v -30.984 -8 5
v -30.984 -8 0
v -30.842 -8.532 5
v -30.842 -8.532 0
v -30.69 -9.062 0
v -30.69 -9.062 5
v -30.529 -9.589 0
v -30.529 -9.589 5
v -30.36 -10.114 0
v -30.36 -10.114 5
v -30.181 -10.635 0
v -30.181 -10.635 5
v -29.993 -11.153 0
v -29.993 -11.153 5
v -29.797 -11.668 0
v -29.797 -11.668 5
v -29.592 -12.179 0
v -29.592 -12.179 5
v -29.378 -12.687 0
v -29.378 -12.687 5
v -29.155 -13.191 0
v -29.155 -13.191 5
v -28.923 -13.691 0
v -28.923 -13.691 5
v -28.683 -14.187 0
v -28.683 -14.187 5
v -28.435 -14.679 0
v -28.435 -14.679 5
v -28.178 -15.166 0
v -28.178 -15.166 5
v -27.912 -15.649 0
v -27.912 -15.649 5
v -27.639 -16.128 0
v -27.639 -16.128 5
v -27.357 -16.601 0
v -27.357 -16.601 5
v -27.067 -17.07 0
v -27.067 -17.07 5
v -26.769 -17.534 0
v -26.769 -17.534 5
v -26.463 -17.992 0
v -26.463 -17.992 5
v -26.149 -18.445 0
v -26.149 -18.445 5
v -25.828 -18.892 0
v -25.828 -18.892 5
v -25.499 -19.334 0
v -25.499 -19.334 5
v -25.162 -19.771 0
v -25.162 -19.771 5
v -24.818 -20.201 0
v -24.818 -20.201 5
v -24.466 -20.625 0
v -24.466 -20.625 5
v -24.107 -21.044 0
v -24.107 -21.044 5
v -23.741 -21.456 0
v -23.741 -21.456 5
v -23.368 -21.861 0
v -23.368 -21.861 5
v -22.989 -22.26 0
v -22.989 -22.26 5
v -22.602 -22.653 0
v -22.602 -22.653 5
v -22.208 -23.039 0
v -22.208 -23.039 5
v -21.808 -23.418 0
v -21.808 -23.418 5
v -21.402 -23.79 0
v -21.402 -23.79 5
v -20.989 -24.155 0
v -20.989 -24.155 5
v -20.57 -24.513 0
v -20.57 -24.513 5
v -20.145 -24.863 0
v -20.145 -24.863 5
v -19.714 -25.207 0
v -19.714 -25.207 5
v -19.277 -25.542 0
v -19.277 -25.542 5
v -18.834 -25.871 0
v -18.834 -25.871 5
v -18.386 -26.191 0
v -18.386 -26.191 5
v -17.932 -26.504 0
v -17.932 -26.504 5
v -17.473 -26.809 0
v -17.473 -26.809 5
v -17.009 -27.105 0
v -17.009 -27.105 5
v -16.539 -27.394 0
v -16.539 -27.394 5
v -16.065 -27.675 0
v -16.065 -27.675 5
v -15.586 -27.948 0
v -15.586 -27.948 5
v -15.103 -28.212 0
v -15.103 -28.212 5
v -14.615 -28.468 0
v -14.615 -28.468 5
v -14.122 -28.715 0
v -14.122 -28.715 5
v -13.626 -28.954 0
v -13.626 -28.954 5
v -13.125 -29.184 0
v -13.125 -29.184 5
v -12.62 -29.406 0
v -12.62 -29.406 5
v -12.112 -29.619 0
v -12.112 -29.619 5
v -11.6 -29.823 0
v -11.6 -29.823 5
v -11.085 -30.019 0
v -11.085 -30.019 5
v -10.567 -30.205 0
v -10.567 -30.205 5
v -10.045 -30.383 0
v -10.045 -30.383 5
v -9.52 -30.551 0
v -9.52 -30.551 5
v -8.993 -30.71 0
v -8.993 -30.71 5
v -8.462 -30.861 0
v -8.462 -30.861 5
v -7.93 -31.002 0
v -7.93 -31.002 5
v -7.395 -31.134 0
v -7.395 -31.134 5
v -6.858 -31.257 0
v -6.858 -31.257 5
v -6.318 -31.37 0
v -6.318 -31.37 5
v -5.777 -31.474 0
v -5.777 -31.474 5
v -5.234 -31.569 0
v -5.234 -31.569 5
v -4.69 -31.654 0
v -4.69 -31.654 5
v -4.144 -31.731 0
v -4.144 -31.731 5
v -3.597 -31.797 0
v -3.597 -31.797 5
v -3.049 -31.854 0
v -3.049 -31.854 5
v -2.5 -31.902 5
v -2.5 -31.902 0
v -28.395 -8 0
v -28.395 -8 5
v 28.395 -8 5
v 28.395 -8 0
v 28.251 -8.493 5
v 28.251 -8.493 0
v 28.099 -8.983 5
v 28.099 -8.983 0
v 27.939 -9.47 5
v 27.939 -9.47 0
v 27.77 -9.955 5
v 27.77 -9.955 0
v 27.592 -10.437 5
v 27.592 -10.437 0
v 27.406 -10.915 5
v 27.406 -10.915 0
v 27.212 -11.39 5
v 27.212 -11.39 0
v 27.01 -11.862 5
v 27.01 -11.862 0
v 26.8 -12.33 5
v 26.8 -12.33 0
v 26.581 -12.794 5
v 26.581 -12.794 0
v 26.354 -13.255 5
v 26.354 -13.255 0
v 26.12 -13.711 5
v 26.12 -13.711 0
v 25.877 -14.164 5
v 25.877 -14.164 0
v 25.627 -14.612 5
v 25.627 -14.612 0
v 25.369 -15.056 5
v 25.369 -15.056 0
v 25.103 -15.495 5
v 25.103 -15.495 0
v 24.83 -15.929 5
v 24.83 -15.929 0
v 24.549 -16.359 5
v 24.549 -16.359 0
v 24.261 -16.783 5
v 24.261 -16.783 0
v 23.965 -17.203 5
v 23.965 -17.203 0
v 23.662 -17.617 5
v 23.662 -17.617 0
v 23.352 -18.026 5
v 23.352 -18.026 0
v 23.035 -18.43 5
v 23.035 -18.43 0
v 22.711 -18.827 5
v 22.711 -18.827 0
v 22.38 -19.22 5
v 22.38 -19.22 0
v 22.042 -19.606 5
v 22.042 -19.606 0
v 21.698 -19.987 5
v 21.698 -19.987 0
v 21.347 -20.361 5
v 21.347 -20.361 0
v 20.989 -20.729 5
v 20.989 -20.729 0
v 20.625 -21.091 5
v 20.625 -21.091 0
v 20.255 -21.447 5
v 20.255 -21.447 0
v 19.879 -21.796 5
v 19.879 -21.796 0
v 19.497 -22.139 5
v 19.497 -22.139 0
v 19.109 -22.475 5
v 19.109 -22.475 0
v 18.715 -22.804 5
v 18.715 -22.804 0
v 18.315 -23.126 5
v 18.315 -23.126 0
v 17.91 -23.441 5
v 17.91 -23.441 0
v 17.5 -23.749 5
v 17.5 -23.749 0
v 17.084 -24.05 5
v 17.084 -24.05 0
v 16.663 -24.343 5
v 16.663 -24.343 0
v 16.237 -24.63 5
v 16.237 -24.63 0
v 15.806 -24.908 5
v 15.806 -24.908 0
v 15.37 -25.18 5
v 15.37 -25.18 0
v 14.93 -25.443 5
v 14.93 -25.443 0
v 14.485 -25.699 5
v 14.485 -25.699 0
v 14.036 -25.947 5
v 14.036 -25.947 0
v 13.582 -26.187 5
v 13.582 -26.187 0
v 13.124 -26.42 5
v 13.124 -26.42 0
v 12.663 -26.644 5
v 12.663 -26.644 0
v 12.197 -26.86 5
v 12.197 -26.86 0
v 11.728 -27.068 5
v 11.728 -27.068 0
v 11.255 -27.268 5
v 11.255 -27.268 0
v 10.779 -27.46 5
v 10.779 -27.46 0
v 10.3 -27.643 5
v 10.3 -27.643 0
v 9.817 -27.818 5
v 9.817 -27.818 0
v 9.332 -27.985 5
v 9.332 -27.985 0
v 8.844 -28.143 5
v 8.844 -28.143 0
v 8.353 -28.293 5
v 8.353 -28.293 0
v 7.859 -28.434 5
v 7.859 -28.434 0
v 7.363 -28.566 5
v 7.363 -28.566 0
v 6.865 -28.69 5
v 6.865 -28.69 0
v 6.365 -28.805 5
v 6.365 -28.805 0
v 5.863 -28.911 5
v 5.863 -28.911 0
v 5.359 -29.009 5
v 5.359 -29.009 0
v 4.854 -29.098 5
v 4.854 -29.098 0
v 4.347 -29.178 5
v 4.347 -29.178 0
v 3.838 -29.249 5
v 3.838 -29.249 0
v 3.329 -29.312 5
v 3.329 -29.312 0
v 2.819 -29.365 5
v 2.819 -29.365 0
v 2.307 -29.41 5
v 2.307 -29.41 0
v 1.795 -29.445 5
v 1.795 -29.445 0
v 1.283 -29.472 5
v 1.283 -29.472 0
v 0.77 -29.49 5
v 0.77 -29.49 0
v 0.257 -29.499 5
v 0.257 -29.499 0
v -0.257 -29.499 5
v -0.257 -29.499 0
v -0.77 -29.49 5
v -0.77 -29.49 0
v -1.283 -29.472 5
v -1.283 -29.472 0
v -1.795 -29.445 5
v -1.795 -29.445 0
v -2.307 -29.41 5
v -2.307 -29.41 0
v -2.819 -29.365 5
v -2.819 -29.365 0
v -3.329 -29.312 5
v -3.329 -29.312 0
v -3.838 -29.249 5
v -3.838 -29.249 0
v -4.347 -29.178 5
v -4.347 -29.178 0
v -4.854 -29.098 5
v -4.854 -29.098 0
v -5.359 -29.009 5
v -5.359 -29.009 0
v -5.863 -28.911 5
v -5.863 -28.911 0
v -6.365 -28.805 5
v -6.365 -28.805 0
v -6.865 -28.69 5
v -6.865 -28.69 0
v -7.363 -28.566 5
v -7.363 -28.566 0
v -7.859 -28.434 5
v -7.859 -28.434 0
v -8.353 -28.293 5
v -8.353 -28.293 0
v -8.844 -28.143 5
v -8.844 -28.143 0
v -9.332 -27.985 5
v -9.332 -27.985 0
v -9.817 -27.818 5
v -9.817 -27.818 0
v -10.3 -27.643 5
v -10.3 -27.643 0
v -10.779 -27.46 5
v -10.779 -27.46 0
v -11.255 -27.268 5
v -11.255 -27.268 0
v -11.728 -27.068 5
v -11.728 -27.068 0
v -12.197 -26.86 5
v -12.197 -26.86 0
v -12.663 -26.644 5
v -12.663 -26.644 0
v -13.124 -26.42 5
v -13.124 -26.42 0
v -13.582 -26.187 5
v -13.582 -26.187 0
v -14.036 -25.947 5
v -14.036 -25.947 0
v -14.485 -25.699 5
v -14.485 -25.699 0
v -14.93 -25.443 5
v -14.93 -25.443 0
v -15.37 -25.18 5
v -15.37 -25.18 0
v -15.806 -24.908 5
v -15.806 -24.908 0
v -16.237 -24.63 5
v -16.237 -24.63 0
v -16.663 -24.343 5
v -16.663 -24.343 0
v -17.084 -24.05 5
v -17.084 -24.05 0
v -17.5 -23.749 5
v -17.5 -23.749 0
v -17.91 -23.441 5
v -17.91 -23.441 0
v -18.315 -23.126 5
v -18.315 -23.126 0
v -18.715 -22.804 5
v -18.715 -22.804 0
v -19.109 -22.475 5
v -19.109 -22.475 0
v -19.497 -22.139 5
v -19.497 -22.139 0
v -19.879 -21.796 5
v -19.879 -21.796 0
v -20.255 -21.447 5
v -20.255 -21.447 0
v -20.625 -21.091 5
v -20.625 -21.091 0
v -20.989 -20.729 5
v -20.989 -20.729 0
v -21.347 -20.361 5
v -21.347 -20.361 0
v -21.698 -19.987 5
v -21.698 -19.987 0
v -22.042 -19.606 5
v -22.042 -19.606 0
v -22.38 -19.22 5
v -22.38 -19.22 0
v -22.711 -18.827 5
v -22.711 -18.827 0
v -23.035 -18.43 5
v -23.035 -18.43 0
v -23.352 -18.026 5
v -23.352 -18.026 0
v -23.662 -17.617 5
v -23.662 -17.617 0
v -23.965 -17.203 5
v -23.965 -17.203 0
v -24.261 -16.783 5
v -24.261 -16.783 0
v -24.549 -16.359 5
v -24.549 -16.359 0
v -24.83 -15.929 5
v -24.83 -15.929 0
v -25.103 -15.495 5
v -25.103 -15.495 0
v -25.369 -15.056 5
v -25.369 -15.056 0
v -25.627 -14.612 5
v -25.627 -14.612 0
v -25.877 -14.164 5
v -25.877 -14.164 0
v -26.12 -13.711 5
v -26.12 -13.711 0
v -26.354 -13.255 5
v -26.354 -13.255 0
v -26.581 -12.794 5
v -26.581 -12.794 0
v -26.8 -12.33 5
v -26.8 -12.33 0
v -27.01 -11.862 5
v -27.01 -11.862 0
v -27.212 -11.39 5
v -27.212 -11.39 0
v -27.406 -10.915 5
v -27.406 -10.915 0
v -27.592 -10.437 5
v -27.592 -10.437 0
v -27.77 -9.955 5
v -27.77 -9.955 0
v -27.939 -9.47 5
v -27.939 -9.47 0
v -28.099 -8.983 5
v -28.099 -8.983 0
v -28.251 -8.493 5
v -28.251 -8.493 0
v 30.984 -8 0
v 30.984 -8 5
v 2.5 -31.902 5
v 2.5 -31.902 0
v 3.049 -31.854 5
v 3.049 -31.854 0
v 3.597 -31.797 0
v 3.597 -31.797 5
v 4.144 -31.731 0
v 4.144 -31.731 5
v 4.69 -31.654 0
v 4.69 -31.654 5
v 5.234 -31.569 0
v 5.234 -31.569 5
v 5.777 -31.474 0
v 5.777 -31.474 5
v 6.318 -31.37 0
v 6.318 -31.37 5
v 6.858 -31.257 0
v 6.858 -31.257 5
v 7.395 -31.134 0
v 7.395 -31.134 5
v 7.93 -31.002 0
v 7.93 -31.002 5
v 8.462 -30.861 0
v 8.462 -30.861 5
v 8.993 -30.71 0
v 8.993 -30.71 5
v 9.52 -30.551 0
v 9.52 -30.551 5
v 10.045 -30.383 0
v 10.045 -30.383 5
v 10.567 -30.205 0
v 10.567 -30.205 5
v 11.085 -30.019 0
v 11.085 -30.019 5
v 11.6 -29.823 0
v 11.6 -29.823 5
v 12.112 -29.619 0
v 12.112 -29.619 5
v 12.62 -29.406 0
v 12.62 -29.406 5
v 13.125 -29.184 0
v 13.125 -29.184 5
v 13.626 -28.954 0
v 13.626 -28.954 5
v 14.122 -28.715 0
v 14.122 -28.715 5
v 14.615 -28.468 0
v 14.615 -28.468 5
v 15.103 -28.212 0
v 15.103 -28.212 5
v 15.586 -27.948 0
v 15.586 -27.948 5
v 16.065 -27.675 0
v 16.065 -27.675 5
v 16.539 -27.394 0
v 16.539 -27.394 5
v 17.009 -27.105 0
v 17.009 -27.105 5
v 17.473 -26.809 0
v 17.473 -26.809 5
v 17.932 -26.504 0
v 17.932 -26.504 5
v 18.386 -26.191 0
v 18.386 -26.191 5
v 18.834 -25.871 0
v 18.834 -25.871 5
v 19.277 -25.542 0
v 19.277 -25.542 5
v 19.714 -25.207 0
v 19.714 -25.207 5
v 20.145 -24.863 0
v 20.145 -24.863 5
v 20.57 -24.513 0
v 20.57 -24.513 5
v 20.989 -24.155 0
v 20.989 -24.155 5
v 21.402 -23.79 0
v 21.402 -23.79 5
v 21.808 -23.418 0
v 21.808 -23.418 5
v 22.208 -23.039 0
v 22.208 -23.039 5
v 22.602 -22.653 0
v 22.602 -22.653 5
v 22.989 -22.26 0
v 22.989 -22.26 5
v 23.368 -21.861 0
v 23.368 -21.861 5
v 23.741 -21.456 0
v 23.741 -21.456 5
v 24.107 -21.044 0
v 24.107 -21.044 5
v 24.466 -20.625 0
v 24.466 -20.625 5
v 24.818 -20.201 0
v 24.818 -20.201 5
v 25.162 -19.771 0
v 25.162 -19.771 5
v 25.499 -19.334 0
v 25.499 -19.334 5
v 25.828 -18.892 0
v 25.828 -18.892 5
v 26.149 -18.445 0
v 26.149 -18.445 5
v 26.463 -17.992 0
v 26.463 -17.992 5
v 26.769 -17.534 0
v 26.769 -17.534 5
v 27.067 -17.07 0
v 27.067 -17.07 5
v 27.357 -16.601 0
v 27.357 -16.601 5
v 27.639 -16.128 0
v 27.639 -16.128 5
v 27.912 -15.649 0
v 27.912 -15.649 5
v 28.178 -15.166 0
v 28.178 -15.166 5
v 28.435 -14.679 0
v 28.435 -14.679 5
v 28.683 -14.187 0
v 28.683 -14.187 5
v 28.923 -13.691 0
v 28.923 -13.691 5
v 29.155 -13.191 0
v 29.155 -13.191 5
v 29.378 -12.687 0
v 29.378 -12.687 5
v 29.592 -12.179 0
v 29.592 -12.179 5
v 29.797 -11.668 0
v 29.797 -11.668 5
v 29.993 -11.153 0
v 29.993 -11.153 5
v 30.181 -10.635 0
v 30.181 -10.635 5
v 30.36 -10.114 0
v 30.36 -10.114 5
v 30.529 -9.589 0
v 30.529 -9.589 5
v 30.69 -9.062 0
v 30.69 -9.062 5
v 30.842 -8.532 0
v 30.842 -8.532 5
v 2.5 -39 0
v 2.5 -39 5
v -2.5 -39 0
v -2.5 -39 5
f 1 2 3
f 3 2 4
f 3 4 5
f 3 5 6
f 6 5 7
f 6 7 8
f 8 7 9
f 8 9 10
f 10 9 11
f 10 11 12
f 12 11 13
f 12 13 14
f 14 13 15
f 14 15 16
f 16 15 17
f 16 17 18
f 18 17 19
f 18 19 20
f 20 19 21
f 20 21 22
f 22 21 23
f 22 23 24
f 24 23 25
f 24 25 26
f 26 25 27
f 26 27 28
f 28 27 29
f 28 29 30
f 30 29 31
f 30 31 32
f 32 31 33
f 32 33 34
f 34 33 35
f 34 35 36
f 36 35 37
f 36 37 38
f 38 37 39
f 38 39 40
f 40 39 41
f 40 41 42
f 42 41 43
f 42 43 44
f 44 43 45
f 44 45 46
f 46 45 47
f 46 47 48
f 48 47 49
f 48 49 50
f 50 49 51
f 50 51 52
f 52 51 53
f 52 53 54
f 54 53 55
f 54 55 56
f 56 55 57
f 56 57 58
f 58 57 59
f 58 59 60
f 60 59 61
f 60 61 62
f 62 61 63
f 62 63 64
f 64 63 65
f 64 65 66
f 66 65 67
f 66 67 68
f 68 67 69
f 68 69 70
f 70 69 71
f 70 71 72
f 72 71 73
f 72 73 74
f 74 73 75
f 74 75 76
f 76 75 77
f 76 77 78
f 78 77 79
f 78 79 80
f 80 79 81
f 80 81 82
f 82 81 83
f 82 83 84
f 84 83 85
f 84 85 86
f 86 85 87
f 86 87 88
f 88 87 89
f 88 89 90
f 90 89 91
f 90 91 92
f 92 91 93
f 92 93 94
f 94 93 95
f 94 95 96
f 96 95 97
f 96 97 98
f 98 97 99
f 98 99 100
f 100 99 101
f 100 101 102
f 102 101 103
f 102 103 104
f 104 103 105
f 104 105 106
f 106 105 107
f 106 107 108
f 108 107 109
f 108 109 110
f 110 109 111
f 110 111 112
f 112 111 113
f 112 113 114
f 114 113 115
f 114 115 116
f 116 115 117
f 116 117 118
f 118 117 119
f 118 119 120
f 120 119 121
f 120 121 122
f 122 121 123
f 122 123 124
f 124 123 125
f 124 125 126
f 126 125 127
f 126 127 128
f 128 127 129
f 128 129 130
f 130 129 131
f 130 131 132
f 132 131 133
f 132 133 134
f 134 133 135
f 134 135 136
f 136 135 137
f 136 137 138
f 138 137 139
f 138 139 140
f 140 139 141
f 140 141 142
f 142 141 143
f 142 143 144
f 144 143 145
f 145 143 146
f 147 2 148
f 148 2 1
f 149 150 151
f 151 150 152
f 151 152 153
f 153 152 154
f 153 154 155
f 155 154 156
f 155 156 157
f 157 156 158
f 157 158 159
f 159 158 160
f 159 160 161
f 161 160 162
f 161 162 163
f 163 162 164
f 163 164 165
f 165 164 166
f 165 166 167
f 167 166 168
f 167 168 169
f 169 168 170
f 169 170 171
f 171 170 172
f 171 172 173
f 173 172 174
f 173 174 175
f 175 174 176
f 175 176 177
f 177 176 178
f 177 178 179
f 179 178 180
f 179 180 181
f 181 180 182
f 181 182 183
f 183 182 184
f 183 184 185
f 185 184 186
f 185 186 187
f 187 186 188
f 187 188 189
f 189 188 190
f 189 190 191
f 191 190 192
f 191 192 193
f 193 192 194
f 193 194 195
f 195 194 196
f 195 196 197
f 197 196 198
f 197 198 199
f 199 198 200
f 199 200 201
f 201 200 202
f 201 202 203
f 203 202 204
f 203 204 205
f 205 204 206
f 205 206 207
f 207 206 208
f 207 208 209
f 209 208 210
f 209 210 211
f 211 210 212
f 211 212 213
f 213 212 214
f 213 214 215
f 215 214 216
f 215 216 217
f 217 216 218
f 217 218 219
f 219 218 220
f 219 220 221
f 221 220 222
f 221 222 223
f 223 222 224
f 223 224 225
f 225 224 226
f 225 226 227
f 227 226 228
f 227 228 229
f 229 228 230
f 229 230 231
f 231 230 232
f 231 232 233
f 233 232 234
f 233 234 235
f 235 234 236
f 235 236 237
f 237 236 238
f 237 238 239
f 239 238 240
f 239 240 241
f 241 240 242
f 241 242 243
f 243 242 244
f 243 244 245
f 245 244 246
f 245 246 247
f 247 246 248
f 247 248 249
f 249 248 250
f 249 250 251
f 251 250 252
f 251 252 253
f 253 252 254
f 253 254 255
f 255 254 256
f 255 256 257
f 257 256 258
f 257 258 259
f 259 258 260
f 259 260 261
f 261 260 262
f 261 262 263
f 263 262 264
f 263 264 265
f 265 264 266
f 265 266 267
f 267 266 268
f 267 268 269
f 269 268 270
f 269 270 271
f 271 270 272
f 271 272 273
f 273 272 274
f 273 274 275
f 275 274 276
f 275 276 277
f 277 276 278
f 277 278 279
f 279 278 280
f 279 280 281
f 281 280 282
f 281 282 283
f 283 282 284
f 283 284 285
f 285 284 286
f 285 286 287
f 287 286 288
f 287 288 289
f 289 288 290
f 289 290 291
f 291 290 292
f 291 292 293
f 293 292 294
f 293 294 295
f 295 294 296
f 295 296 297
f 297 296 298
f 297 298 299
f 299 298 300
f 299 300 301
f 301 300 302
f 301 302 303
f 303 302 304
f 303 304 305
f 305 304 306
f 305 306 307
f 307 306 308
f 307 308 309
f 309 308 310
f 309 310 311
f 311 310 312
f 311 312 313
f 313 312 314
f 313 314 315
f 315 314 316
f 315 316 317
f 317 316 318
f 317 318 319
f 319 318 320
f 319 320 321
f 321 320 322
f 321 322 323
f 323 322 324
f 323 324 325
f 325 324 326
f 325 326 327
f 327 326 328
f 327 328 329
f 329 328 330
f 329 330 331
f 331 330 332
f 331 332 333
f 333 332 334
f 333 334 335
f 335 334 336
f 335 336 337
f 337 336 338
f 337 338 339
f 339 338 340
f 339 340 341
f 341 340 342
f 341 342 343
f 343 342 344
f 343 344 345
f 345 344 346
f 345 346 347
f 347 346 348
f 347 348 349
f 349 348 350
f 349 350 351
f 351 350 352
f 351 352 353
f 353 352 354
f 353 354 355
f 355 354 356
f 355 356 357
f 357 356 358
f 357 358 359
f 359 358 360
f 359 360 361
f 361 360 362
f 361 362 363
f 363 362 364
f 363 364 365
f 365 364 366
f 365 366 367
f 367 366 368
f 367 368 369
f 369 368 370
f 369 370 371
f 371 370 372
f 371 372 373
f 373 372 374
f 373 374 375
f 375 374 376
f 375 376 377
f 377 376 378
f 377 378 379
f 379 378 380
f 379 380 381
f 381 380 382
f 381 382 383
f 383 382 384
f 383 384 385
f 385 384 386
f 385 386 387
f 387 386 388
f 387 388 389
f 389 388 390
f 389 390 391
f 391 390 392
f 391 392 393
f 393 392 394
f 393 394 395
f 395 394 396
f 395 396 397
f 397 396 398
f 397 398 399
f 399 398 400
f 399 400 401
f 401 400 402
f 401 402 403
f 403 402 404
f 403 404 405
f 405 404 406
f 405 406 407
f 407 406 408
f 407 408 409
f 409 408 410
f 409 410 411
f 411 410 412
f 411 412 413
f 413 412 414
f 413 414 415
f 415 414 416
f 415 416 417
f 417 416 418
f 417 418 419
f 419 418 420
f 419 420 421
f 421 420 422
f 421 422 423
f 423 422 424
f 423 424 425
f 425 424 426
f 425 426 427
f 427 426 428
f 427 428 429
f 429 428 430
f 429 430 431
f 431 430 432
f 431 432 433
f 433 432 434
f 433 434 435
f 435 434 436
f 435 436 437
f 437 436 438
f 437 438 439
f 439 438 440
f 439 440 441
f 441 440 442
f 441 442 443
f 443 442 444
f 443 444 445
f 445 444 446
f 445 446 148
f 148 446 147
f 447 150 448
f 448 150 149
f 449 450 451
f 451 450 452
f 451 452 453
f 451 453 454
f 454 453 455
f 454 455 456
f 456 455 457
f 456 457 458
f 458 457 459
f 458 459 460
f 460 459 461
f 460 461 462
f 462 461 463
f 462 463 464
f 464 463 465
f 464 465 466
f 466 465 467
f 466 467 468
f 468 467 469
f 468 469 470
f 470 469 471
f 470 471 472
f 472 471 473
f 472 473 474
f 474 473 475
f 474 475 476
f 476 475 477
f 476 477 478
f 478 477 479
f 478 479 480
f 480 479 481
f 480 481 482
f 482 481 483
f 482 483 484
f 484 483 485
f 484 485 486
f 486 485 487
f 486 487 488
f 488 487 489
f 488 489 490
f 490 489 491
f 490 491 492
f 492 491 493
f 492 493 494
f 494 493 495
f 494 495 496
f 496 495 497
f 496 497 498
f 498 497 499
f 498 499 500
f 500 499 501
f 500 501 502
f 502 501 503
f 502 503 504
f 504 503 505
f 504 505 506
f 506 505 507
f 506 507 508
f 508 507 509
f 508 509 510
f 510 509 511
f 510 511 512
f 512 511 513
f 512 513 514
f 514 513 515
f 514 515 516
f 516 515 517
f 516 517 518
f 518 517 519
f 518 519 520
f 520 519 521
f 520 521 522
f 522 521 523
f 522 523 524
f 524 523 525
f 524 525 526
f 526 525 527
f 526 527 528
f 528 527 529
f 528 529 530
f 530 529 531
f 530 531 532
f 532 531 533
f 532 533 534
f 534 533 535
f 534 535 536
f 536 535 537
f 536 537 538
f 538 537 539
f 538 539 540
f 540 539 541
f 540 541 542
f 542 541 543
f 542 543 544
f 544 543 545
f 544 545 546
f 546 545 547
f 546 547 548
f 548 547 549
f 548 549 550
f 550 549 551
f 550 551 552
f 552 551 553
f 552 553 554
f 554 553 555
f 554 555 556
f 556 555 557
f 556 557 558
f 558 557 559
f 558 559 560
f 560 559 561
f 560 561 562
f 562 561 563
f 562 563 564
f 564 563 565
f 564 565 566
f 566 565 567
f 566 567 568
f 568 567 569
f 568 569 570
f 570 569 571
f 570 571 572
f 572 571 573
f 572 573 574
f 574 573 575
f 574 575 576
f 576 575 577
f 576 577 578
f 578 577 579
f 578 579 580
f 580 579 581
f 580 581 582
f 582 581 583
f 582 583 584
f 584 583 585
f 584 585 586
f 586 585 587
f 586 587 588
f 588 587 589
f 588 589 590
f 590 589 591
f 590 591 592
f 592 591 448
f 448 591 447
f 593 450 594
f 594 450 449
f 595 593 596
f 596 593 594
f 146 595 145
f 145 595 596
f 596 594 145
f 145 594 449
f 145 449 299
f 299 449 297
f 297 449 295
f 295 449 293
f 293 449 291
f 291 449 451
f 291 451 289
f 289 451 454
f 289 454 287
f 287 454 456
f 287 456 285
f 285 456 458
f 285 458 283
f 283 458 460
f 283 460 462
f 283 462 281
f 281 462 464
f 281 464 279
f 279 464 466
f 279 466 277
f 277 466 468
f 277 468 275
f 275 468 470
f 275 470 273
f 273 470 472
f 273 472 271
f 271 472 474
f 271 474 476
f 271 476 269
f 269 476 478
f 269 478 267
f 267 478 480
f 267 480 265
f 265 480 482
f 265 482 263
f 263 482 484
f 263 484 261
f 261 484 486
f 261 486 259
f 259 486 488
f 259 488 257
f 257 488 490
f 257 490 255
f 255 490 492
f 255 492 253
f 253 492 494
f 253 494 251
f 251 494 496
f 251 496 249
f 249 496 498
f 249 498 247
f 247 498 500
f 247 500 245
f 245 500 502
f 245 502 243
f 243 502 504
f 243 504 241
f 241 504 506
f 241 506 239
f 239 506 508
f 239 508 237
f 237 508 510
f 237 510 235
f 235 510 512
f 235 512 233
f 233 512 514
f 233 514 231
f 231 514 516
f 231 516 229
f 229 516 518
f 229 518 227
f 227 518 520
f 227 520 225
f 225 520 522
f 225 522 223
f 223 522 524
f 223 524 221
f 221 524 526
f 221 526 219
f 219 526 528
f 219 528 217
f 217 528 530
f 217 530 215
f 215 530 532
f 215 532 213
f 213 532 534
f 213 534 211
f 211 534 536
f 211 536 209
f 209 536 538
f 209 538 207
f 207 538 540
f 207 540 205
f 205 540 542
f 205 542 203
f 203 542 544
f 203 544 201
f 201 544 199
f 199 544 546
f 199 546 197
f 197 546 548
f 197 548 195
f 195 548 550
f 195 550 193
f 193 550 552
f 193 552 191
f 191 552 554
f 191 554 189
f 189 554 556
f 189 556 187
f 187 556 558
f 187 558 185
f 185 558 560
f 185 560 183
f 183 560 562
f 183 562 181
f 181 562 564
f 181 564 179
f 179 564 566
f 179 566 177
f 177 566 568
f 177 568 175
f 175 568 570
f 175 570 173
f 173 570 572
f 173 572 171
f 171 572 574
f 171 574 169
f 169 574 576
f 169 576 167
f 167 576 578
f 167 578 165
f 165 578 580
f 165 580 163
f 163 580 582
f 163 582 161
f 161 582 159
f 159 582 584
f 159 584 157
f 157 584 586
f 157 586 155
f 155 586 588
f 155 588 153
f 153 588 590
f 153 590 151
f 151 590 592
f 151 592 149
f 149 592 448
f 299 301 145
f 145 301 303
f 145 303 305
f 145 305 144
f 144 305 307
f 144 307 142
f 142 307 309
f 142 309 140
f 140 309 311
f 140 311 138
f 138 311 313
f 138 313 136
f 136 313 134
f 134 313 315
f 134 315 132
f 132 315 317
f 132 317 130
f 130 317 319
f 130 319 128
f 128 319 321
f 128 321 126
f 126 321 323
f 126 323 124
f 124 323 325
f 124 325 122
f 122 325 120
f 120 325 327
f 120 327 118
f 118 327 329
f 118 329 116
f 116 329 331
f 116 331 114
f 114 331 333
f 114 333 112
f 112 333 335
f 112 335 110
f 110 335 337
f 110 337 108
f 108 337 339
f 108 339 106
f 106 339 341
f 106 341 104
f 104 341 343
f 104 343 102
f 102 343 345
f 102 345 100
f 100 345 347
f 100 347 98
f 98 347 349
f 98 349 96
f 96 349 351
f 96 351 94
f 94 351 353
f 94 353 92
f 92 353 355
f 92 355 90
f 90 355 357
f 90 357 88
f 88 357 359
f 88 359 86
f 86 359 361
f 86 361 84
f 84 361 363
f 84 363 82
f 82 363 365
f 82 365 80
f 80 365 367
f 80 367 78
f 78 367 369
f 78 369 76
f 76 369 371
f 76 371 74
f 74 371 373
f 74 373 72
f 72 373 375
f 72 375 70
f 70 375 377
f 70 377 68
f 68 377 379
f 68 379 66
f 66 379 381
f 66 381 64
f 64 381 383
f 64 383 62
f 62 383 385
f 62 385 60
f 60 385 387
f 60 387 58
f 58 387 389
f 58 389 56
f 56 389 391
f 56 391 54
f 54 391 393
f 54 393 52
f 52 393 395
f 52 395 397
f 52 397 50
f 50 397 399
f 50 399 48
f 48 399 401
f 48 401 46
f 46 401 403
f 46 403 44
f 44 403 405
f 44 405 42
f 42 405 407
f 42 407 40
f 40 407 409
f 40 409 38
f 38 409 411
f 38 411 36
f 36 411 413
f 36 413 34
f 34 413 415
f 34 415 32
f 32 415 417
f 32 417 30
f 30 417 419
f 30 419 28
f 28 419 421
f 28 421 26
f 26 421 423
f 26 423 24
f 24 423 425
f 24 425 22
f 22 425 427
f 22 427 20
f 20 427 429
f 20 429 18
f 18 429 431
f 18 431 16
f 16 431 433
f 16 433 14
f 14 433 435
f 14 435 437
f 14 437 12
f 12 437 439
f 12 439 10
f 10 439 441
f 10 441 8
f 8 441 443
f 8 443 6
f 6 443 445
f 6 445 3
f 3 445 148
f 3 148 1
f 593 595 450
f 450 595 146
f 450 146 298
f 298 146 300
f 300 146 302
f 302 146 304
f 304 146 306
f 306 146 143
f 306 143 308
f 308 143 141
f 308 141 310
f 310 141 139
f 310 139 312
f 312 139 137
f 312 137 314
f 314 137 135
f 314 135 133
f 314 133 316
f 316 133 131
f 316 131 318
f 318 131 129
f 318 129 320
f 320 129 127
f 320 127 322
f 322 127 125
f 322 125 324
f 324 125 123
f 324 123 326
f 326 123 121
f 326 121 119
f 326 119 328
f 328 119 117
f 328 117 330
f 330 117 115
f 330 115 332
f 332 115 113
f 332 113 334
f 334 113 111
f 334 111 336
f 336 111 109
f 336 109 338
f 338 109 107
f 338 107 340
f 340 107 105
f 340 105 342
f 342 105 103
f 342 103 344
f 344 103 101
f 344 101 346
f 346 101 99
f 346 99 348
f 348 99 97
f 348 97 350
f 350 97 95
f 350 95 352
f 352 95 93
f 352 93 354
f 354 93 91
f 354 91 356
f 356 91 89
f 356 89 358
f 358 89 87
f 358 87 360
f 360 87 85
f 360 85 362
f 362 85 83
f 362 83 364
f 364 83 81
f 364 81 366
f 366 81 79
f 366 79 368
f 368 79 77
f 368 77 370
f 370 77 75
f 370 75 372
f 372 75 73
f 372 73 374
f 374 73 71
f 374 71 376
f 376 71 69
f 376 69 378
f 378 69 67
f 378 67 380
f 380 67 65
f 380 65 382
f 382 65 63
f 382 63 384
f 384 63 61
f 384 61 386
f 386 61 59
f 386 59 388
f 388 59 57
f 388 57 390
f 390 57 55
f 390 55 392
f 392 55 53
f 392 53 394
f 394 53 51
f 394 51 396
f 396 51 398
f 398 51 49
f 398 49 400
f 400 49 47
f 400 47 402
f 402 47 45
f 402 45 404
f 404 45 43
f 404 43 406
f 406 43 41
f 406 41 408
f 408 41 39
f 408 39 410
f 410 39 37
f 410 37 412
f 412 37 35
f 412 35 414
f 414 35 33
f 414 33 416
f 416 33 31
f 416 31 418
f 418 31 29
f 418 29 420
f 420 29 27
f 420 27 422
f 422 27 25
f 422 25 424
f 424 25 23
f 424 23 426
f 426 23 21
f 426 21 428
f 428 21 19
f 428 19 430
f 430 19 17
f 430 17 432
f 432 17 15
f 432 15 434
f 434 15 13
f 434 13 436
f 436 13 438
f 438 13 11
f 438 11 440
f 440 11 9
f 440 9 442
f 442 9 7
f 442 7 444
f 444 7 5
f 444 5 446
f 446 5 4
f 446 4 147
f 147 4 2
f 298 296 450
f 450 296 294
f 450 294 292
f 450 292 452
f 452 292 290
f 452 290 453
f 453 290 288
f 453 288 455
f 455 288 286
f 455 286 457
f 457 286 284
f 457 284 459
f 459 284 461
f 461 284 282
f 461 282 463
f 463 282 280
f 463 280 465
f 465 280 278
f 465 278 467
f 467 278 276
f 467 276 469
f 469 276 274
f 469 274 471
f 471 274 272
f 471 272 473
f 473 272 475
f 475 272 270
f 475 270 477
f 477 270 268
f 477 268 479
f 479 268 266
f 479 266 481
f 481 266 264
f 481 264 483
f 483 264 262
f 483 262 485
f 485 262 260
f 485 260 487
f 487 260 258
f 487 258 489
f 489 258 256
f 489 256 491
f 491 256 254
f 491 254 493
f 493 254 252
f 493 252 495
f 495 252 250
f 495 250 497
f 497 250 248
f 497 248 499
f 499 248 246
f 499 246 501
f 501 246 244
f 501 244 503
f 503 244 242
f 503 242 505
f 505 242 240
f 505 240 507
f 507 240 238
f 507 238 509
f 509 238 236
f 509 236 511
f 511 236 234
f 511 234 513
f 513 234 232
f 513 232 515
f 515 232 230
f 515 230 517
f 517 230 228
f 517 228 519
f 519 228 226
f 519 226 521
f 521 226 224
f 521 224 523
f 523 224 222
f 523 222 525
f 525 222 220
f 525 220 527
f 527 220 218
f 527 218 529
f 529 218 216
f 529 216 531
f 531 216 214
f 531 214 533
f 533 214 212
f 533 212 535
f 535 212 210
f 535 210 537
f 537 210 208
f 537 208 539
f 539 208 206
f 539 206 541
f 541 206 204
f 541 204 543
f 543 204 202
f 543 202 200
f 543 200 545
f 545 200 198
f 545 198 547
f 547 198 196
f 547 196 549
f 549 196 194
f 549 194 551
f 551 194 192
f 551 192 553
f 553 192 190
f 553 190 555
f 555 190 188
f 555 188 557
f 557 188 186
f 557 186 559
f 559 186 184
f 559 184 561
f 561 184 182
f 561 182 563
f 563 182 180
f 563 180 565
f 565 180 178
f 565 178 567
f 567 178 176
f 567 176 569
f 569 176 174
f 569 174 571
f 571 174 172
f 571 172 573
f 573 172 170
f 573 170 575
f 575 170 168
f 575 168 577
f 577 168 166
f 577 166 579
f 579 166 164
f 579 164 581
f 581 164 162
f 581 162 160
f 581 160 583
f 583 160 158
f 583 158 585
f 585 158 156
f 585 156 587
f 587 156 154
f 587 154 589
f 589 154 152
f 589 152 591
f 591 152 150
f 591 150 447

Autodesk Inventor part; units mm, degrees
ref_plane "YZ Plane" through (0, 0, 0) normal (1, 0, 0) x (0, 1, 0)
ref_plane "XZ Plane" through (0, 0, 0) normal (0, 1, 0) x (-1, 0, 0)
ref_plane "XY Plane" through (0, 0, 0) normal (0, 0, 1) x (1, 0, 0)
sketch "Sketch1" plane through (0, 0, 0) normal (0, 0, 1) x (1, 0, 0)
  arc A0 (-25.4018, -15) -> (25.4018, -15) centre (0, 0) ccw
  line L0 (2.5, -32) -> (2.5, -39)
  line L1 (2.5, -39) -> (-2.5, -39)
  line L2 (-2.5, -39) -> (-2.5, -32)
  line L3 (-2.5, -32) -> (-2.5, -31.9022)
  line L4 (2.5, -32) -> (2.5, -31.9022)
  arc A1 (-28.2666, -15) -> (-2.5, -31.9022) centre (0, 0) ccw
  arc A2 (2.5, -31.9022) -> (28.2666, -15) centre (0, 0) ccw
  arc A3 (-27.7534, -10) -> (27.7534, -10) centre (0, 0) ccw
  arc A4 (-30.3974, -10) -> (-2.5, -31.9022) centre (0, 0) ccw
  arc A5 (2.5, -31.9022) -> (30.3974, -10) centre (0, 0) ccw
  arc A6 (-28.3945, -8) -> (28.3945, -8) centre (0, 0) ccw
  line L5 (-28.3945, -8) -> (-30.9839, -8)
  line L6 (28.3945, -8) -> (30.9839, -8)
  arc A7 (-30.9839, -8) -> (-2.5, -31.9022) centre (0, 0) ccw
  arc A8 (2.5, -31.9022) -> (30.9839, -8) centre (0, 0) ccw
  point P0 (25.4018, -15)
  point P1 (-28.2666, -15)
  point P2 (27.7534, -10)
  point P3 (-30.3974, -10)
  dimension "d43" = 5
  dimension "d64" = 7
extrude "Extrusion7" add sketch "Sketch1" along normal blind 5
properties part number "Clip_TestFitV1"
